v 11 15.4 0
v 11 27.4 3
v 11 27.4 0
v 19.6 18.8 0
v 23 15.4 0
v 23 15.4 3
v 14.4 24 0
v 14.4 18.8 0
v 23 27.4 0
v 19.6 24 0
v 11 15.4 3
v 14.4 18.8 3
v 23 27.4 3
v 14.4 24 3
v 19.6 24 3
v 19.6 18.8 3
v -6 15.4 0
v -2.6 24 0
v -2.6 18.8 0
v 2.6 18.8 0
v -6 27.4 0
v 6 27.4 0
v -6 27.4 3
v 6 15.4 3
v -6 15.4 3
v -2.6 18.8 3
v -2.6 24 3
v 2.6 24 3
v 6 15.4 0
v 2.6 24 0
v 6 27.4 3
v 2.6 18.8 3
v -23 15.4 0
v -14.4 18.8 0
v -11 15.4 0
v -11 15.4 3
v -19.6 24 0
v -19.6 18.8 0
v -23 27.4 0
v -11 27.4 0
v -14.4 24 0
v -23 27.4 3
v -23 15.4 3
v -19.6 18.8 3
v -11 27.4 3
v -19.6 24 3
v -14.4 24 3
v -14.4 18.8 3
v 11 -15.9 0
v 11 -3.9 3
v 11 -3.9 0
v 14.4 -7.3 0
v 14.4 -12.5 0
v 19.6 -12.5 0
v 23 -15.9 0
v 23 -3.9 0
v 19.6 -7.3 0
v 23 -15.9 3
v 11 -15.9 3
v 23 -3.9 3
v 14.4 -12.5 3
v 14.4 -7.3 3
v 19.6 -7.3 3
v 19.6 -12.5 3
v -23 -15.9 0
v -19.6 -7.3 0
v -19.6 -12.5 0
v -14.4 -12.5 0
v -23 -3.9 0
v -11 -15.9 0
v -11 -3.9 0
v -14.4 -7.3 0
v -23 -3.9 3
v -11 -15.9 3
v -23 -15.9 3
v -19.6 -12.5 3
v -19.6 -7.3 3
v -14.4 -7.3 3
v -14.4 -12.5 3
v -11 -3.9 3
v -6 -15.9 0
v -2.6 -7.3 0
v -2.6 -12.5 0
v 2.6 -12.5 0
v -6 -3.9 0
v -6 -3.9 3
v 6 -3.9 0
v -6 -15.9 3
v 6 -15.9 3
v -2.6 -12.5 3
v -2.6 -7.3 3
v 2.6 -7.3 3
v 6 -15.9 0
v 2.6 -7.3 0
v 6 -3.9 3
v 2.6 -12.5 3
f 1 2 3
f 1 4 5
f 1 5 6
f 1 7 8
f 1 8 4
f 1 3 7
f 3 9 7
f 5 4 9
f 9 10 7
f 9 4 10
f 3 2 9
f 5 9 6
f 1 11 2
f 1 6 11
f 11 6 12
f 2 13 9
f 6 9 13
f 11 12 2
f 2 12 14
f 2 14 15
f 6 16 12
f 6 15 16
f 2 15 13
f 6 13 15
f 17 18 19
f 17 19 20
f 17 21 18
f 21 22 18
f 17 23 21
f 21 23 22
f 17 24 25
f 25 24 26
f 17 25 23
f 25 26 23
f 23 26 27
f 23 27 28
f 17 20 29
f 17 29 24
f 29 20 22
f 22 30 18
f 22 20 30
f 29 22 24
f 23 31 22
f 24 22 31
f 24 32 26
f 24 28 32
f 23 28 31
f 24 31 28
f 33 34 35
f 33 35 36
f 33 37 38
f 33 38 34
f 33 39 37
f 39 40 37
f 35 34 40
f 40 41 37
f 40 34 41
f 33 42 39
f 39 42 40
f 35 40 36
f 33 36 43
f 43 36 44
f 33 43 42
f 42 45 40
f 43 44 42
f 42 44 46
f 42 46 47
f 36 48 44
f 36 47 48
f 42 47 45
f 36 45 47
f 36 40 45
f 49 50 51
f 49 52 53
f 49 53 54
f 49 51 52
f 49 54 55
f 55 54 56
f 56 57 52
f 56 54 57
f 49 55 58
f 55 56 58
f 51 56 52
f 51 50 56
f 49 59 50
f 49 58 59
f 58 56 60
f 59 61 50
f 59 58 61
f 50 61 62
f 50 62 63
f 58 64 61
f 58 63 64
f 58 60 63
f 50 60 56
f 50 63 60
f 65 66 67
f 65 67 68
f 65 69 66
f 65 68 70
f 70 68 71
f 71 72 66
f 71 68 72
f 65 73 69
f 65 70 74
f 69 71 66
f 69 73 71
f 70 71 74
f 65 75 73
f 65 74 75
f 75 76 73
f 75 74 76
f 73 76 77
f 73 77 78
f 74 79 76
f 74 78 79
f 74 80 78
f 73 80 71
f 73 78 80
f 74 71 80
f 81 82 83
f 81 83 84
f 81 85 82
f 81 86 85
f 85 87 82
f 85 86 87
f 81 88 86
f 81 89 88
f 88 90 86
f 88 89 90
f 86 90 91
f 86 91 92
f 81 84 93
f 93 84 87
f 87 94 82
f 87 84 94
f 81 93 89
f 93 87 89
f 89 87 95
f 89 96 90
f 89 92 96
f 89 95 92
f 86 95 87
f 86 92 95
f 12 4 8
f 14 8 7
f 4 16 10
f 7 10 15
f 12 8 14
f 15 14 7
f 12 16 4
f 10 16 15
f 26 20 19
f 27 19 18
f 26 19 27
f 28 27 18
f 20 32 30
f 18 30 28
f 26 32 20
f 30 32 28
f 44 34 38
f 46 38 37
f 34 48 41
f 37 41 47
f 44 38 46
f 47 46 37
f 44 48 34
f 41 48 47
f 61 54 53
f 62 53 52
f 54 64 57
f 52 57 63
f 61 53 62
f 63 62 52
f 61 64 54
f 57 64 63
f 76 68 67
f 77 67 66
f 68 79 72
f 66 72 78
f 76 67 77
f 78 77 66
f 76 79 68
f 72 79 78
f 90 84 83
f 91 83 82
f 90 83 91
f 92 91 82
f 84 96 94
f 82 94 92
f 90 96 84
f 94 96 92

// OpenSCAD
$fn = 50;

difference() {
	union() {
		translate(v = [-17.000000000500002, -9.899999999999999, 0]) {
			rotate(a = [0, 0, 0]) {
				difference() {
					union() {
						translate(v = [-6.0, -6.0, 0]) {
							cube(size = [12.0, 12.0, 3.0]);
						}
					}
					union() {
						translate(v = [-2.6, -2.6, -0.1]) {
							cube(size = [5.2, 5.2, 3.2]);
						}
					}
				}
			}
		}
		translate(v = [-5.000018177270249e-10, -9.899999999999999, 0]) {
			rotate(a = [0, 0, 0]) {
				difference() {
					union() {
						translate(v = [-6.0, -6.0, 0]) {
							cube(size = [12.0, 12.0, 3.0]);
						}
					}
					union() {
						translate(v = [-2.6, -2.6, -0.1]) {
							cube(size = [5.2, 5.2, 3.2]);
						}
					}
				}
			}
		}
		translate(v = [16.999999999499998, -9.899999999999999, 0]) {
			rotate(a = [0, 0, 0]) {
				difference() {
					union() {
						translate(v = [-6.0, -6.0, 0]) {
							cube(size = [12.0, 12.0, 3.0]);
						}
					}
					union() {
						translate(v = [-2.6, -2.6, -0.1]) {
							cube(size = [5.2, 5.2, 3.2]);
						}
					}
				}
			}
		}
		translate(v = [-17.000000000500002, 21.400000000000002, 0]) {
			rotate(a = [0, 0, 0]) {
				difference() {
					union() {
						translate(v = [-6.0, -6.0, 0]) {
							cube(size = [12.0, 12.0, 3.0]);
						}
					}
					union() {
						translate(v = [-2.6, -2.6, -0.1]) {
							cube(size = [5.2, 5.2, 3.2]);
						}
					}
				}
			}
		}
		translate(v = [-5.000018177270249e-10, 21.400000000000002, 0]) {
			rotate(a = [0, 0, 0]) {
				difference() {
					union() {
						translate(v = [-6.0, -6.0, 0]) {
							cube(size = [12.0, 12.0, 3.0]);
						}
					}
					union() {
						translate(v = [-2.6, -2.6, -0.1]) {
							cube(size = [5.2, 5.2, 3.2]);
						}
					}
				}
			}
		}
		translate(v = [16.999999999499998, 21.400000000000002, 0]) {
			rotate(a = [0, 0, 0]) {
				difference() {
					union() {
						translate(v = [-6.0, -6.0, 0]) {
							cube(size = [12.0, 12.0, 3.0]);
						}
					}
					union() {
						translate(v = [-2.6, -2.6, -0.1]) {
							cube(size = [5.2, 5.2, 3.2]);
						}
					}
				}
			}
		}
	}
	union();
}
